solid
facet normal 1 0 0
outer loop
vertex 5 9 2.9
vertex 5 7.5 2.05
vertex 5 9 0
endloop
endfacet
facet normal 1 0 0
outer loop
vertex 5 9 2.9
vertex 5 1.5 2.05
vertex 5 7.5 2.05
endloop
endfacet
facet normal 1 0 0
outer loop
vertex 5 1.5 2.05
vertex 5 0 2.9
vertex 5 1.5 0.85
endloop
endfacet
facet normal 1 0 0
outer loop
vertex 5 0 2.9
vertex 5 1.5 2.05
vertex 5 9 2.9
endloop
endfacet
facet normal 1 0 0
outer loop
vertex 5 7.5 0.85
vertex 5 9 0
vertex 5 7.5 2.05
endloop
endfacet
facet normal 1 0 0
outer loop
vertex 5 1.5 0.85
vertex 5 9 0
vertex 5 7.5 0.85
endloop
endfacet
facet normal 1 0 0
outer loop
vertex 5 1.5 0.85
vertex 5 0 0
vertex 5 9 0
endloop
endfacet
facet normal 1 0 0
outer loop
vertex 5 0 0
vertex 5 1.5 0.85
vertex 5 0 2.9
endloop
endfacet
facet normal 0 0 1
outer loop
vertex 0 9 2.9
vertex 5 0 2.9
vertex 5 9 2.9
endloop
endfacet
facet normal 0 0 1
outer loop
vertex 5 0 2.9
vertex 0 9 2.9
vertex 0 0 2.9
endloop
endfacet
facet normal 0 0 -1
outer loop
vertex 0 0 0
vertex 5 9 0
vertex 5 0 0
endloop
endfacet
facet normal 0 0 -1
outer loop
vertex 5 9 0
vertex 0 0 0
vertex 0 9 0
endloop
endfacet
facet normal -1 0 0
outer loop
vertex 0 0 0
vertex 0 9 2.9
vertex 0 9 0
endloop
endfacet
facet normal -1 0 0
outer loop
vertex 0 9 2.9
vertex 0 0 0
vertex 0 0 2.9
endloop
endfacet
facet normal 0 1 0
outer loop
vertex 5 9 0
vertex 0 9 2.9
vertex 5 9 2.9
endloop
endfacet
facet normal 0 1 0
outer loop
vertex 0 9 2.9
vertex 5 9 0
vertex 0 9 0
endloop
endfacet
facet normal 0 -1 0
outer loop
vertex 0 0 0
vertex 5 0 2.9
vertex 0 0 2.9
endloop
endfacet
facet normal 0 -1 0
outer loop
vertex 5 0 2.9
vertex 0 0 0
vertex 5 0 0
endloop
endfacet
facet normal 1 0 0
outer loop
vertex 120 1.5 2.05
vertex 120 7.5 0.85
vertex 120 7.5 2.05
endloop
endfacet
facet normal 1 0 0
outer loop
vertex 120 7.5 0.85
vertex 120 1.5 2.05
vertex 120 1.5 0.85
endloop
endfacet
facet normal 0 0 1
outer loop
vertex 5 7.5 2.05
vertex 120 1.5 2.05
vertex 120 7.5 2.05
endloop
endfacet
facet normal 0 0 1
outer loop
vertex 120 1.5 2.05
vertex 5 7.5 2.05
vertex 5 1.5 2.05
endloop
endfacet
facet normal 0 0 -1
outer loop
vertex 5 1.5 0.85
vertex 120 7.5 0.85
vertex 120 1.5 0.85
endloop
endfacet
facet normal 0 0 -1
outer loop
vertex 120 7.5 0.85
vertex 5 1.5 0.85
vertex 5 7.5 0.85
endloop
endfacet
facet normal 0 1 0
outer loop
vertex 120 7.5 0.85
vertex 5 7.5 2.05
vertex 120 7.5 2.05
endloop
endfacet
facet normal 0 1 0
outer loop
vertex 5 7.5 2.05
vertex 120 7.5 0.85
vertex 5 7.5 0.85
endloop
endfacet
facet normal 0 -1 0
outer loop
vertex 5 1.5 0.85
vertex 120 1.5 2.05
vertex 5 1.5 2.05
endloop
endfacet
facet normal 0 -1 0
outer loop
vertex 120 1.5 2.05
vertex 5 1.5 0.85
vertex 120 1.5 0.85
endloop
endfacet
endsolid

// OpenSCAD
// Pololu #4762 straight stock/service envelope.
// Units: mm.
//
// Pololu specifies a 120 mm cable with six 28 AWG conductors and a 6-pin
// female JST SH-style connector. The JST SH housing envelope is modeled as
// 9 x 5 x 2.9 mm. Route a sweep from the same cross-section in the final
// assembly; this straight model is only a length and storage-volume check.

cable_length = 120.00;
connector_depth = 5.00;
connector_width = 9.00;
connector_height = 2.90;

wire_bundle_width = 6.00;
wire_bundle_height = 1.20;

union() {
    cube([connector_depth, connector_width, connector_height]);
    translate([
        connector_depth - 0.10,
        (connector_width - wire_bundle_width) / 2,
        (connector_height - wire_bundle_height) / 2
    ])
        cube([
            cable_length - connector_depth + 0.10,
            wire_bundle_width,
            wire_bundle_height
        ]);
}
